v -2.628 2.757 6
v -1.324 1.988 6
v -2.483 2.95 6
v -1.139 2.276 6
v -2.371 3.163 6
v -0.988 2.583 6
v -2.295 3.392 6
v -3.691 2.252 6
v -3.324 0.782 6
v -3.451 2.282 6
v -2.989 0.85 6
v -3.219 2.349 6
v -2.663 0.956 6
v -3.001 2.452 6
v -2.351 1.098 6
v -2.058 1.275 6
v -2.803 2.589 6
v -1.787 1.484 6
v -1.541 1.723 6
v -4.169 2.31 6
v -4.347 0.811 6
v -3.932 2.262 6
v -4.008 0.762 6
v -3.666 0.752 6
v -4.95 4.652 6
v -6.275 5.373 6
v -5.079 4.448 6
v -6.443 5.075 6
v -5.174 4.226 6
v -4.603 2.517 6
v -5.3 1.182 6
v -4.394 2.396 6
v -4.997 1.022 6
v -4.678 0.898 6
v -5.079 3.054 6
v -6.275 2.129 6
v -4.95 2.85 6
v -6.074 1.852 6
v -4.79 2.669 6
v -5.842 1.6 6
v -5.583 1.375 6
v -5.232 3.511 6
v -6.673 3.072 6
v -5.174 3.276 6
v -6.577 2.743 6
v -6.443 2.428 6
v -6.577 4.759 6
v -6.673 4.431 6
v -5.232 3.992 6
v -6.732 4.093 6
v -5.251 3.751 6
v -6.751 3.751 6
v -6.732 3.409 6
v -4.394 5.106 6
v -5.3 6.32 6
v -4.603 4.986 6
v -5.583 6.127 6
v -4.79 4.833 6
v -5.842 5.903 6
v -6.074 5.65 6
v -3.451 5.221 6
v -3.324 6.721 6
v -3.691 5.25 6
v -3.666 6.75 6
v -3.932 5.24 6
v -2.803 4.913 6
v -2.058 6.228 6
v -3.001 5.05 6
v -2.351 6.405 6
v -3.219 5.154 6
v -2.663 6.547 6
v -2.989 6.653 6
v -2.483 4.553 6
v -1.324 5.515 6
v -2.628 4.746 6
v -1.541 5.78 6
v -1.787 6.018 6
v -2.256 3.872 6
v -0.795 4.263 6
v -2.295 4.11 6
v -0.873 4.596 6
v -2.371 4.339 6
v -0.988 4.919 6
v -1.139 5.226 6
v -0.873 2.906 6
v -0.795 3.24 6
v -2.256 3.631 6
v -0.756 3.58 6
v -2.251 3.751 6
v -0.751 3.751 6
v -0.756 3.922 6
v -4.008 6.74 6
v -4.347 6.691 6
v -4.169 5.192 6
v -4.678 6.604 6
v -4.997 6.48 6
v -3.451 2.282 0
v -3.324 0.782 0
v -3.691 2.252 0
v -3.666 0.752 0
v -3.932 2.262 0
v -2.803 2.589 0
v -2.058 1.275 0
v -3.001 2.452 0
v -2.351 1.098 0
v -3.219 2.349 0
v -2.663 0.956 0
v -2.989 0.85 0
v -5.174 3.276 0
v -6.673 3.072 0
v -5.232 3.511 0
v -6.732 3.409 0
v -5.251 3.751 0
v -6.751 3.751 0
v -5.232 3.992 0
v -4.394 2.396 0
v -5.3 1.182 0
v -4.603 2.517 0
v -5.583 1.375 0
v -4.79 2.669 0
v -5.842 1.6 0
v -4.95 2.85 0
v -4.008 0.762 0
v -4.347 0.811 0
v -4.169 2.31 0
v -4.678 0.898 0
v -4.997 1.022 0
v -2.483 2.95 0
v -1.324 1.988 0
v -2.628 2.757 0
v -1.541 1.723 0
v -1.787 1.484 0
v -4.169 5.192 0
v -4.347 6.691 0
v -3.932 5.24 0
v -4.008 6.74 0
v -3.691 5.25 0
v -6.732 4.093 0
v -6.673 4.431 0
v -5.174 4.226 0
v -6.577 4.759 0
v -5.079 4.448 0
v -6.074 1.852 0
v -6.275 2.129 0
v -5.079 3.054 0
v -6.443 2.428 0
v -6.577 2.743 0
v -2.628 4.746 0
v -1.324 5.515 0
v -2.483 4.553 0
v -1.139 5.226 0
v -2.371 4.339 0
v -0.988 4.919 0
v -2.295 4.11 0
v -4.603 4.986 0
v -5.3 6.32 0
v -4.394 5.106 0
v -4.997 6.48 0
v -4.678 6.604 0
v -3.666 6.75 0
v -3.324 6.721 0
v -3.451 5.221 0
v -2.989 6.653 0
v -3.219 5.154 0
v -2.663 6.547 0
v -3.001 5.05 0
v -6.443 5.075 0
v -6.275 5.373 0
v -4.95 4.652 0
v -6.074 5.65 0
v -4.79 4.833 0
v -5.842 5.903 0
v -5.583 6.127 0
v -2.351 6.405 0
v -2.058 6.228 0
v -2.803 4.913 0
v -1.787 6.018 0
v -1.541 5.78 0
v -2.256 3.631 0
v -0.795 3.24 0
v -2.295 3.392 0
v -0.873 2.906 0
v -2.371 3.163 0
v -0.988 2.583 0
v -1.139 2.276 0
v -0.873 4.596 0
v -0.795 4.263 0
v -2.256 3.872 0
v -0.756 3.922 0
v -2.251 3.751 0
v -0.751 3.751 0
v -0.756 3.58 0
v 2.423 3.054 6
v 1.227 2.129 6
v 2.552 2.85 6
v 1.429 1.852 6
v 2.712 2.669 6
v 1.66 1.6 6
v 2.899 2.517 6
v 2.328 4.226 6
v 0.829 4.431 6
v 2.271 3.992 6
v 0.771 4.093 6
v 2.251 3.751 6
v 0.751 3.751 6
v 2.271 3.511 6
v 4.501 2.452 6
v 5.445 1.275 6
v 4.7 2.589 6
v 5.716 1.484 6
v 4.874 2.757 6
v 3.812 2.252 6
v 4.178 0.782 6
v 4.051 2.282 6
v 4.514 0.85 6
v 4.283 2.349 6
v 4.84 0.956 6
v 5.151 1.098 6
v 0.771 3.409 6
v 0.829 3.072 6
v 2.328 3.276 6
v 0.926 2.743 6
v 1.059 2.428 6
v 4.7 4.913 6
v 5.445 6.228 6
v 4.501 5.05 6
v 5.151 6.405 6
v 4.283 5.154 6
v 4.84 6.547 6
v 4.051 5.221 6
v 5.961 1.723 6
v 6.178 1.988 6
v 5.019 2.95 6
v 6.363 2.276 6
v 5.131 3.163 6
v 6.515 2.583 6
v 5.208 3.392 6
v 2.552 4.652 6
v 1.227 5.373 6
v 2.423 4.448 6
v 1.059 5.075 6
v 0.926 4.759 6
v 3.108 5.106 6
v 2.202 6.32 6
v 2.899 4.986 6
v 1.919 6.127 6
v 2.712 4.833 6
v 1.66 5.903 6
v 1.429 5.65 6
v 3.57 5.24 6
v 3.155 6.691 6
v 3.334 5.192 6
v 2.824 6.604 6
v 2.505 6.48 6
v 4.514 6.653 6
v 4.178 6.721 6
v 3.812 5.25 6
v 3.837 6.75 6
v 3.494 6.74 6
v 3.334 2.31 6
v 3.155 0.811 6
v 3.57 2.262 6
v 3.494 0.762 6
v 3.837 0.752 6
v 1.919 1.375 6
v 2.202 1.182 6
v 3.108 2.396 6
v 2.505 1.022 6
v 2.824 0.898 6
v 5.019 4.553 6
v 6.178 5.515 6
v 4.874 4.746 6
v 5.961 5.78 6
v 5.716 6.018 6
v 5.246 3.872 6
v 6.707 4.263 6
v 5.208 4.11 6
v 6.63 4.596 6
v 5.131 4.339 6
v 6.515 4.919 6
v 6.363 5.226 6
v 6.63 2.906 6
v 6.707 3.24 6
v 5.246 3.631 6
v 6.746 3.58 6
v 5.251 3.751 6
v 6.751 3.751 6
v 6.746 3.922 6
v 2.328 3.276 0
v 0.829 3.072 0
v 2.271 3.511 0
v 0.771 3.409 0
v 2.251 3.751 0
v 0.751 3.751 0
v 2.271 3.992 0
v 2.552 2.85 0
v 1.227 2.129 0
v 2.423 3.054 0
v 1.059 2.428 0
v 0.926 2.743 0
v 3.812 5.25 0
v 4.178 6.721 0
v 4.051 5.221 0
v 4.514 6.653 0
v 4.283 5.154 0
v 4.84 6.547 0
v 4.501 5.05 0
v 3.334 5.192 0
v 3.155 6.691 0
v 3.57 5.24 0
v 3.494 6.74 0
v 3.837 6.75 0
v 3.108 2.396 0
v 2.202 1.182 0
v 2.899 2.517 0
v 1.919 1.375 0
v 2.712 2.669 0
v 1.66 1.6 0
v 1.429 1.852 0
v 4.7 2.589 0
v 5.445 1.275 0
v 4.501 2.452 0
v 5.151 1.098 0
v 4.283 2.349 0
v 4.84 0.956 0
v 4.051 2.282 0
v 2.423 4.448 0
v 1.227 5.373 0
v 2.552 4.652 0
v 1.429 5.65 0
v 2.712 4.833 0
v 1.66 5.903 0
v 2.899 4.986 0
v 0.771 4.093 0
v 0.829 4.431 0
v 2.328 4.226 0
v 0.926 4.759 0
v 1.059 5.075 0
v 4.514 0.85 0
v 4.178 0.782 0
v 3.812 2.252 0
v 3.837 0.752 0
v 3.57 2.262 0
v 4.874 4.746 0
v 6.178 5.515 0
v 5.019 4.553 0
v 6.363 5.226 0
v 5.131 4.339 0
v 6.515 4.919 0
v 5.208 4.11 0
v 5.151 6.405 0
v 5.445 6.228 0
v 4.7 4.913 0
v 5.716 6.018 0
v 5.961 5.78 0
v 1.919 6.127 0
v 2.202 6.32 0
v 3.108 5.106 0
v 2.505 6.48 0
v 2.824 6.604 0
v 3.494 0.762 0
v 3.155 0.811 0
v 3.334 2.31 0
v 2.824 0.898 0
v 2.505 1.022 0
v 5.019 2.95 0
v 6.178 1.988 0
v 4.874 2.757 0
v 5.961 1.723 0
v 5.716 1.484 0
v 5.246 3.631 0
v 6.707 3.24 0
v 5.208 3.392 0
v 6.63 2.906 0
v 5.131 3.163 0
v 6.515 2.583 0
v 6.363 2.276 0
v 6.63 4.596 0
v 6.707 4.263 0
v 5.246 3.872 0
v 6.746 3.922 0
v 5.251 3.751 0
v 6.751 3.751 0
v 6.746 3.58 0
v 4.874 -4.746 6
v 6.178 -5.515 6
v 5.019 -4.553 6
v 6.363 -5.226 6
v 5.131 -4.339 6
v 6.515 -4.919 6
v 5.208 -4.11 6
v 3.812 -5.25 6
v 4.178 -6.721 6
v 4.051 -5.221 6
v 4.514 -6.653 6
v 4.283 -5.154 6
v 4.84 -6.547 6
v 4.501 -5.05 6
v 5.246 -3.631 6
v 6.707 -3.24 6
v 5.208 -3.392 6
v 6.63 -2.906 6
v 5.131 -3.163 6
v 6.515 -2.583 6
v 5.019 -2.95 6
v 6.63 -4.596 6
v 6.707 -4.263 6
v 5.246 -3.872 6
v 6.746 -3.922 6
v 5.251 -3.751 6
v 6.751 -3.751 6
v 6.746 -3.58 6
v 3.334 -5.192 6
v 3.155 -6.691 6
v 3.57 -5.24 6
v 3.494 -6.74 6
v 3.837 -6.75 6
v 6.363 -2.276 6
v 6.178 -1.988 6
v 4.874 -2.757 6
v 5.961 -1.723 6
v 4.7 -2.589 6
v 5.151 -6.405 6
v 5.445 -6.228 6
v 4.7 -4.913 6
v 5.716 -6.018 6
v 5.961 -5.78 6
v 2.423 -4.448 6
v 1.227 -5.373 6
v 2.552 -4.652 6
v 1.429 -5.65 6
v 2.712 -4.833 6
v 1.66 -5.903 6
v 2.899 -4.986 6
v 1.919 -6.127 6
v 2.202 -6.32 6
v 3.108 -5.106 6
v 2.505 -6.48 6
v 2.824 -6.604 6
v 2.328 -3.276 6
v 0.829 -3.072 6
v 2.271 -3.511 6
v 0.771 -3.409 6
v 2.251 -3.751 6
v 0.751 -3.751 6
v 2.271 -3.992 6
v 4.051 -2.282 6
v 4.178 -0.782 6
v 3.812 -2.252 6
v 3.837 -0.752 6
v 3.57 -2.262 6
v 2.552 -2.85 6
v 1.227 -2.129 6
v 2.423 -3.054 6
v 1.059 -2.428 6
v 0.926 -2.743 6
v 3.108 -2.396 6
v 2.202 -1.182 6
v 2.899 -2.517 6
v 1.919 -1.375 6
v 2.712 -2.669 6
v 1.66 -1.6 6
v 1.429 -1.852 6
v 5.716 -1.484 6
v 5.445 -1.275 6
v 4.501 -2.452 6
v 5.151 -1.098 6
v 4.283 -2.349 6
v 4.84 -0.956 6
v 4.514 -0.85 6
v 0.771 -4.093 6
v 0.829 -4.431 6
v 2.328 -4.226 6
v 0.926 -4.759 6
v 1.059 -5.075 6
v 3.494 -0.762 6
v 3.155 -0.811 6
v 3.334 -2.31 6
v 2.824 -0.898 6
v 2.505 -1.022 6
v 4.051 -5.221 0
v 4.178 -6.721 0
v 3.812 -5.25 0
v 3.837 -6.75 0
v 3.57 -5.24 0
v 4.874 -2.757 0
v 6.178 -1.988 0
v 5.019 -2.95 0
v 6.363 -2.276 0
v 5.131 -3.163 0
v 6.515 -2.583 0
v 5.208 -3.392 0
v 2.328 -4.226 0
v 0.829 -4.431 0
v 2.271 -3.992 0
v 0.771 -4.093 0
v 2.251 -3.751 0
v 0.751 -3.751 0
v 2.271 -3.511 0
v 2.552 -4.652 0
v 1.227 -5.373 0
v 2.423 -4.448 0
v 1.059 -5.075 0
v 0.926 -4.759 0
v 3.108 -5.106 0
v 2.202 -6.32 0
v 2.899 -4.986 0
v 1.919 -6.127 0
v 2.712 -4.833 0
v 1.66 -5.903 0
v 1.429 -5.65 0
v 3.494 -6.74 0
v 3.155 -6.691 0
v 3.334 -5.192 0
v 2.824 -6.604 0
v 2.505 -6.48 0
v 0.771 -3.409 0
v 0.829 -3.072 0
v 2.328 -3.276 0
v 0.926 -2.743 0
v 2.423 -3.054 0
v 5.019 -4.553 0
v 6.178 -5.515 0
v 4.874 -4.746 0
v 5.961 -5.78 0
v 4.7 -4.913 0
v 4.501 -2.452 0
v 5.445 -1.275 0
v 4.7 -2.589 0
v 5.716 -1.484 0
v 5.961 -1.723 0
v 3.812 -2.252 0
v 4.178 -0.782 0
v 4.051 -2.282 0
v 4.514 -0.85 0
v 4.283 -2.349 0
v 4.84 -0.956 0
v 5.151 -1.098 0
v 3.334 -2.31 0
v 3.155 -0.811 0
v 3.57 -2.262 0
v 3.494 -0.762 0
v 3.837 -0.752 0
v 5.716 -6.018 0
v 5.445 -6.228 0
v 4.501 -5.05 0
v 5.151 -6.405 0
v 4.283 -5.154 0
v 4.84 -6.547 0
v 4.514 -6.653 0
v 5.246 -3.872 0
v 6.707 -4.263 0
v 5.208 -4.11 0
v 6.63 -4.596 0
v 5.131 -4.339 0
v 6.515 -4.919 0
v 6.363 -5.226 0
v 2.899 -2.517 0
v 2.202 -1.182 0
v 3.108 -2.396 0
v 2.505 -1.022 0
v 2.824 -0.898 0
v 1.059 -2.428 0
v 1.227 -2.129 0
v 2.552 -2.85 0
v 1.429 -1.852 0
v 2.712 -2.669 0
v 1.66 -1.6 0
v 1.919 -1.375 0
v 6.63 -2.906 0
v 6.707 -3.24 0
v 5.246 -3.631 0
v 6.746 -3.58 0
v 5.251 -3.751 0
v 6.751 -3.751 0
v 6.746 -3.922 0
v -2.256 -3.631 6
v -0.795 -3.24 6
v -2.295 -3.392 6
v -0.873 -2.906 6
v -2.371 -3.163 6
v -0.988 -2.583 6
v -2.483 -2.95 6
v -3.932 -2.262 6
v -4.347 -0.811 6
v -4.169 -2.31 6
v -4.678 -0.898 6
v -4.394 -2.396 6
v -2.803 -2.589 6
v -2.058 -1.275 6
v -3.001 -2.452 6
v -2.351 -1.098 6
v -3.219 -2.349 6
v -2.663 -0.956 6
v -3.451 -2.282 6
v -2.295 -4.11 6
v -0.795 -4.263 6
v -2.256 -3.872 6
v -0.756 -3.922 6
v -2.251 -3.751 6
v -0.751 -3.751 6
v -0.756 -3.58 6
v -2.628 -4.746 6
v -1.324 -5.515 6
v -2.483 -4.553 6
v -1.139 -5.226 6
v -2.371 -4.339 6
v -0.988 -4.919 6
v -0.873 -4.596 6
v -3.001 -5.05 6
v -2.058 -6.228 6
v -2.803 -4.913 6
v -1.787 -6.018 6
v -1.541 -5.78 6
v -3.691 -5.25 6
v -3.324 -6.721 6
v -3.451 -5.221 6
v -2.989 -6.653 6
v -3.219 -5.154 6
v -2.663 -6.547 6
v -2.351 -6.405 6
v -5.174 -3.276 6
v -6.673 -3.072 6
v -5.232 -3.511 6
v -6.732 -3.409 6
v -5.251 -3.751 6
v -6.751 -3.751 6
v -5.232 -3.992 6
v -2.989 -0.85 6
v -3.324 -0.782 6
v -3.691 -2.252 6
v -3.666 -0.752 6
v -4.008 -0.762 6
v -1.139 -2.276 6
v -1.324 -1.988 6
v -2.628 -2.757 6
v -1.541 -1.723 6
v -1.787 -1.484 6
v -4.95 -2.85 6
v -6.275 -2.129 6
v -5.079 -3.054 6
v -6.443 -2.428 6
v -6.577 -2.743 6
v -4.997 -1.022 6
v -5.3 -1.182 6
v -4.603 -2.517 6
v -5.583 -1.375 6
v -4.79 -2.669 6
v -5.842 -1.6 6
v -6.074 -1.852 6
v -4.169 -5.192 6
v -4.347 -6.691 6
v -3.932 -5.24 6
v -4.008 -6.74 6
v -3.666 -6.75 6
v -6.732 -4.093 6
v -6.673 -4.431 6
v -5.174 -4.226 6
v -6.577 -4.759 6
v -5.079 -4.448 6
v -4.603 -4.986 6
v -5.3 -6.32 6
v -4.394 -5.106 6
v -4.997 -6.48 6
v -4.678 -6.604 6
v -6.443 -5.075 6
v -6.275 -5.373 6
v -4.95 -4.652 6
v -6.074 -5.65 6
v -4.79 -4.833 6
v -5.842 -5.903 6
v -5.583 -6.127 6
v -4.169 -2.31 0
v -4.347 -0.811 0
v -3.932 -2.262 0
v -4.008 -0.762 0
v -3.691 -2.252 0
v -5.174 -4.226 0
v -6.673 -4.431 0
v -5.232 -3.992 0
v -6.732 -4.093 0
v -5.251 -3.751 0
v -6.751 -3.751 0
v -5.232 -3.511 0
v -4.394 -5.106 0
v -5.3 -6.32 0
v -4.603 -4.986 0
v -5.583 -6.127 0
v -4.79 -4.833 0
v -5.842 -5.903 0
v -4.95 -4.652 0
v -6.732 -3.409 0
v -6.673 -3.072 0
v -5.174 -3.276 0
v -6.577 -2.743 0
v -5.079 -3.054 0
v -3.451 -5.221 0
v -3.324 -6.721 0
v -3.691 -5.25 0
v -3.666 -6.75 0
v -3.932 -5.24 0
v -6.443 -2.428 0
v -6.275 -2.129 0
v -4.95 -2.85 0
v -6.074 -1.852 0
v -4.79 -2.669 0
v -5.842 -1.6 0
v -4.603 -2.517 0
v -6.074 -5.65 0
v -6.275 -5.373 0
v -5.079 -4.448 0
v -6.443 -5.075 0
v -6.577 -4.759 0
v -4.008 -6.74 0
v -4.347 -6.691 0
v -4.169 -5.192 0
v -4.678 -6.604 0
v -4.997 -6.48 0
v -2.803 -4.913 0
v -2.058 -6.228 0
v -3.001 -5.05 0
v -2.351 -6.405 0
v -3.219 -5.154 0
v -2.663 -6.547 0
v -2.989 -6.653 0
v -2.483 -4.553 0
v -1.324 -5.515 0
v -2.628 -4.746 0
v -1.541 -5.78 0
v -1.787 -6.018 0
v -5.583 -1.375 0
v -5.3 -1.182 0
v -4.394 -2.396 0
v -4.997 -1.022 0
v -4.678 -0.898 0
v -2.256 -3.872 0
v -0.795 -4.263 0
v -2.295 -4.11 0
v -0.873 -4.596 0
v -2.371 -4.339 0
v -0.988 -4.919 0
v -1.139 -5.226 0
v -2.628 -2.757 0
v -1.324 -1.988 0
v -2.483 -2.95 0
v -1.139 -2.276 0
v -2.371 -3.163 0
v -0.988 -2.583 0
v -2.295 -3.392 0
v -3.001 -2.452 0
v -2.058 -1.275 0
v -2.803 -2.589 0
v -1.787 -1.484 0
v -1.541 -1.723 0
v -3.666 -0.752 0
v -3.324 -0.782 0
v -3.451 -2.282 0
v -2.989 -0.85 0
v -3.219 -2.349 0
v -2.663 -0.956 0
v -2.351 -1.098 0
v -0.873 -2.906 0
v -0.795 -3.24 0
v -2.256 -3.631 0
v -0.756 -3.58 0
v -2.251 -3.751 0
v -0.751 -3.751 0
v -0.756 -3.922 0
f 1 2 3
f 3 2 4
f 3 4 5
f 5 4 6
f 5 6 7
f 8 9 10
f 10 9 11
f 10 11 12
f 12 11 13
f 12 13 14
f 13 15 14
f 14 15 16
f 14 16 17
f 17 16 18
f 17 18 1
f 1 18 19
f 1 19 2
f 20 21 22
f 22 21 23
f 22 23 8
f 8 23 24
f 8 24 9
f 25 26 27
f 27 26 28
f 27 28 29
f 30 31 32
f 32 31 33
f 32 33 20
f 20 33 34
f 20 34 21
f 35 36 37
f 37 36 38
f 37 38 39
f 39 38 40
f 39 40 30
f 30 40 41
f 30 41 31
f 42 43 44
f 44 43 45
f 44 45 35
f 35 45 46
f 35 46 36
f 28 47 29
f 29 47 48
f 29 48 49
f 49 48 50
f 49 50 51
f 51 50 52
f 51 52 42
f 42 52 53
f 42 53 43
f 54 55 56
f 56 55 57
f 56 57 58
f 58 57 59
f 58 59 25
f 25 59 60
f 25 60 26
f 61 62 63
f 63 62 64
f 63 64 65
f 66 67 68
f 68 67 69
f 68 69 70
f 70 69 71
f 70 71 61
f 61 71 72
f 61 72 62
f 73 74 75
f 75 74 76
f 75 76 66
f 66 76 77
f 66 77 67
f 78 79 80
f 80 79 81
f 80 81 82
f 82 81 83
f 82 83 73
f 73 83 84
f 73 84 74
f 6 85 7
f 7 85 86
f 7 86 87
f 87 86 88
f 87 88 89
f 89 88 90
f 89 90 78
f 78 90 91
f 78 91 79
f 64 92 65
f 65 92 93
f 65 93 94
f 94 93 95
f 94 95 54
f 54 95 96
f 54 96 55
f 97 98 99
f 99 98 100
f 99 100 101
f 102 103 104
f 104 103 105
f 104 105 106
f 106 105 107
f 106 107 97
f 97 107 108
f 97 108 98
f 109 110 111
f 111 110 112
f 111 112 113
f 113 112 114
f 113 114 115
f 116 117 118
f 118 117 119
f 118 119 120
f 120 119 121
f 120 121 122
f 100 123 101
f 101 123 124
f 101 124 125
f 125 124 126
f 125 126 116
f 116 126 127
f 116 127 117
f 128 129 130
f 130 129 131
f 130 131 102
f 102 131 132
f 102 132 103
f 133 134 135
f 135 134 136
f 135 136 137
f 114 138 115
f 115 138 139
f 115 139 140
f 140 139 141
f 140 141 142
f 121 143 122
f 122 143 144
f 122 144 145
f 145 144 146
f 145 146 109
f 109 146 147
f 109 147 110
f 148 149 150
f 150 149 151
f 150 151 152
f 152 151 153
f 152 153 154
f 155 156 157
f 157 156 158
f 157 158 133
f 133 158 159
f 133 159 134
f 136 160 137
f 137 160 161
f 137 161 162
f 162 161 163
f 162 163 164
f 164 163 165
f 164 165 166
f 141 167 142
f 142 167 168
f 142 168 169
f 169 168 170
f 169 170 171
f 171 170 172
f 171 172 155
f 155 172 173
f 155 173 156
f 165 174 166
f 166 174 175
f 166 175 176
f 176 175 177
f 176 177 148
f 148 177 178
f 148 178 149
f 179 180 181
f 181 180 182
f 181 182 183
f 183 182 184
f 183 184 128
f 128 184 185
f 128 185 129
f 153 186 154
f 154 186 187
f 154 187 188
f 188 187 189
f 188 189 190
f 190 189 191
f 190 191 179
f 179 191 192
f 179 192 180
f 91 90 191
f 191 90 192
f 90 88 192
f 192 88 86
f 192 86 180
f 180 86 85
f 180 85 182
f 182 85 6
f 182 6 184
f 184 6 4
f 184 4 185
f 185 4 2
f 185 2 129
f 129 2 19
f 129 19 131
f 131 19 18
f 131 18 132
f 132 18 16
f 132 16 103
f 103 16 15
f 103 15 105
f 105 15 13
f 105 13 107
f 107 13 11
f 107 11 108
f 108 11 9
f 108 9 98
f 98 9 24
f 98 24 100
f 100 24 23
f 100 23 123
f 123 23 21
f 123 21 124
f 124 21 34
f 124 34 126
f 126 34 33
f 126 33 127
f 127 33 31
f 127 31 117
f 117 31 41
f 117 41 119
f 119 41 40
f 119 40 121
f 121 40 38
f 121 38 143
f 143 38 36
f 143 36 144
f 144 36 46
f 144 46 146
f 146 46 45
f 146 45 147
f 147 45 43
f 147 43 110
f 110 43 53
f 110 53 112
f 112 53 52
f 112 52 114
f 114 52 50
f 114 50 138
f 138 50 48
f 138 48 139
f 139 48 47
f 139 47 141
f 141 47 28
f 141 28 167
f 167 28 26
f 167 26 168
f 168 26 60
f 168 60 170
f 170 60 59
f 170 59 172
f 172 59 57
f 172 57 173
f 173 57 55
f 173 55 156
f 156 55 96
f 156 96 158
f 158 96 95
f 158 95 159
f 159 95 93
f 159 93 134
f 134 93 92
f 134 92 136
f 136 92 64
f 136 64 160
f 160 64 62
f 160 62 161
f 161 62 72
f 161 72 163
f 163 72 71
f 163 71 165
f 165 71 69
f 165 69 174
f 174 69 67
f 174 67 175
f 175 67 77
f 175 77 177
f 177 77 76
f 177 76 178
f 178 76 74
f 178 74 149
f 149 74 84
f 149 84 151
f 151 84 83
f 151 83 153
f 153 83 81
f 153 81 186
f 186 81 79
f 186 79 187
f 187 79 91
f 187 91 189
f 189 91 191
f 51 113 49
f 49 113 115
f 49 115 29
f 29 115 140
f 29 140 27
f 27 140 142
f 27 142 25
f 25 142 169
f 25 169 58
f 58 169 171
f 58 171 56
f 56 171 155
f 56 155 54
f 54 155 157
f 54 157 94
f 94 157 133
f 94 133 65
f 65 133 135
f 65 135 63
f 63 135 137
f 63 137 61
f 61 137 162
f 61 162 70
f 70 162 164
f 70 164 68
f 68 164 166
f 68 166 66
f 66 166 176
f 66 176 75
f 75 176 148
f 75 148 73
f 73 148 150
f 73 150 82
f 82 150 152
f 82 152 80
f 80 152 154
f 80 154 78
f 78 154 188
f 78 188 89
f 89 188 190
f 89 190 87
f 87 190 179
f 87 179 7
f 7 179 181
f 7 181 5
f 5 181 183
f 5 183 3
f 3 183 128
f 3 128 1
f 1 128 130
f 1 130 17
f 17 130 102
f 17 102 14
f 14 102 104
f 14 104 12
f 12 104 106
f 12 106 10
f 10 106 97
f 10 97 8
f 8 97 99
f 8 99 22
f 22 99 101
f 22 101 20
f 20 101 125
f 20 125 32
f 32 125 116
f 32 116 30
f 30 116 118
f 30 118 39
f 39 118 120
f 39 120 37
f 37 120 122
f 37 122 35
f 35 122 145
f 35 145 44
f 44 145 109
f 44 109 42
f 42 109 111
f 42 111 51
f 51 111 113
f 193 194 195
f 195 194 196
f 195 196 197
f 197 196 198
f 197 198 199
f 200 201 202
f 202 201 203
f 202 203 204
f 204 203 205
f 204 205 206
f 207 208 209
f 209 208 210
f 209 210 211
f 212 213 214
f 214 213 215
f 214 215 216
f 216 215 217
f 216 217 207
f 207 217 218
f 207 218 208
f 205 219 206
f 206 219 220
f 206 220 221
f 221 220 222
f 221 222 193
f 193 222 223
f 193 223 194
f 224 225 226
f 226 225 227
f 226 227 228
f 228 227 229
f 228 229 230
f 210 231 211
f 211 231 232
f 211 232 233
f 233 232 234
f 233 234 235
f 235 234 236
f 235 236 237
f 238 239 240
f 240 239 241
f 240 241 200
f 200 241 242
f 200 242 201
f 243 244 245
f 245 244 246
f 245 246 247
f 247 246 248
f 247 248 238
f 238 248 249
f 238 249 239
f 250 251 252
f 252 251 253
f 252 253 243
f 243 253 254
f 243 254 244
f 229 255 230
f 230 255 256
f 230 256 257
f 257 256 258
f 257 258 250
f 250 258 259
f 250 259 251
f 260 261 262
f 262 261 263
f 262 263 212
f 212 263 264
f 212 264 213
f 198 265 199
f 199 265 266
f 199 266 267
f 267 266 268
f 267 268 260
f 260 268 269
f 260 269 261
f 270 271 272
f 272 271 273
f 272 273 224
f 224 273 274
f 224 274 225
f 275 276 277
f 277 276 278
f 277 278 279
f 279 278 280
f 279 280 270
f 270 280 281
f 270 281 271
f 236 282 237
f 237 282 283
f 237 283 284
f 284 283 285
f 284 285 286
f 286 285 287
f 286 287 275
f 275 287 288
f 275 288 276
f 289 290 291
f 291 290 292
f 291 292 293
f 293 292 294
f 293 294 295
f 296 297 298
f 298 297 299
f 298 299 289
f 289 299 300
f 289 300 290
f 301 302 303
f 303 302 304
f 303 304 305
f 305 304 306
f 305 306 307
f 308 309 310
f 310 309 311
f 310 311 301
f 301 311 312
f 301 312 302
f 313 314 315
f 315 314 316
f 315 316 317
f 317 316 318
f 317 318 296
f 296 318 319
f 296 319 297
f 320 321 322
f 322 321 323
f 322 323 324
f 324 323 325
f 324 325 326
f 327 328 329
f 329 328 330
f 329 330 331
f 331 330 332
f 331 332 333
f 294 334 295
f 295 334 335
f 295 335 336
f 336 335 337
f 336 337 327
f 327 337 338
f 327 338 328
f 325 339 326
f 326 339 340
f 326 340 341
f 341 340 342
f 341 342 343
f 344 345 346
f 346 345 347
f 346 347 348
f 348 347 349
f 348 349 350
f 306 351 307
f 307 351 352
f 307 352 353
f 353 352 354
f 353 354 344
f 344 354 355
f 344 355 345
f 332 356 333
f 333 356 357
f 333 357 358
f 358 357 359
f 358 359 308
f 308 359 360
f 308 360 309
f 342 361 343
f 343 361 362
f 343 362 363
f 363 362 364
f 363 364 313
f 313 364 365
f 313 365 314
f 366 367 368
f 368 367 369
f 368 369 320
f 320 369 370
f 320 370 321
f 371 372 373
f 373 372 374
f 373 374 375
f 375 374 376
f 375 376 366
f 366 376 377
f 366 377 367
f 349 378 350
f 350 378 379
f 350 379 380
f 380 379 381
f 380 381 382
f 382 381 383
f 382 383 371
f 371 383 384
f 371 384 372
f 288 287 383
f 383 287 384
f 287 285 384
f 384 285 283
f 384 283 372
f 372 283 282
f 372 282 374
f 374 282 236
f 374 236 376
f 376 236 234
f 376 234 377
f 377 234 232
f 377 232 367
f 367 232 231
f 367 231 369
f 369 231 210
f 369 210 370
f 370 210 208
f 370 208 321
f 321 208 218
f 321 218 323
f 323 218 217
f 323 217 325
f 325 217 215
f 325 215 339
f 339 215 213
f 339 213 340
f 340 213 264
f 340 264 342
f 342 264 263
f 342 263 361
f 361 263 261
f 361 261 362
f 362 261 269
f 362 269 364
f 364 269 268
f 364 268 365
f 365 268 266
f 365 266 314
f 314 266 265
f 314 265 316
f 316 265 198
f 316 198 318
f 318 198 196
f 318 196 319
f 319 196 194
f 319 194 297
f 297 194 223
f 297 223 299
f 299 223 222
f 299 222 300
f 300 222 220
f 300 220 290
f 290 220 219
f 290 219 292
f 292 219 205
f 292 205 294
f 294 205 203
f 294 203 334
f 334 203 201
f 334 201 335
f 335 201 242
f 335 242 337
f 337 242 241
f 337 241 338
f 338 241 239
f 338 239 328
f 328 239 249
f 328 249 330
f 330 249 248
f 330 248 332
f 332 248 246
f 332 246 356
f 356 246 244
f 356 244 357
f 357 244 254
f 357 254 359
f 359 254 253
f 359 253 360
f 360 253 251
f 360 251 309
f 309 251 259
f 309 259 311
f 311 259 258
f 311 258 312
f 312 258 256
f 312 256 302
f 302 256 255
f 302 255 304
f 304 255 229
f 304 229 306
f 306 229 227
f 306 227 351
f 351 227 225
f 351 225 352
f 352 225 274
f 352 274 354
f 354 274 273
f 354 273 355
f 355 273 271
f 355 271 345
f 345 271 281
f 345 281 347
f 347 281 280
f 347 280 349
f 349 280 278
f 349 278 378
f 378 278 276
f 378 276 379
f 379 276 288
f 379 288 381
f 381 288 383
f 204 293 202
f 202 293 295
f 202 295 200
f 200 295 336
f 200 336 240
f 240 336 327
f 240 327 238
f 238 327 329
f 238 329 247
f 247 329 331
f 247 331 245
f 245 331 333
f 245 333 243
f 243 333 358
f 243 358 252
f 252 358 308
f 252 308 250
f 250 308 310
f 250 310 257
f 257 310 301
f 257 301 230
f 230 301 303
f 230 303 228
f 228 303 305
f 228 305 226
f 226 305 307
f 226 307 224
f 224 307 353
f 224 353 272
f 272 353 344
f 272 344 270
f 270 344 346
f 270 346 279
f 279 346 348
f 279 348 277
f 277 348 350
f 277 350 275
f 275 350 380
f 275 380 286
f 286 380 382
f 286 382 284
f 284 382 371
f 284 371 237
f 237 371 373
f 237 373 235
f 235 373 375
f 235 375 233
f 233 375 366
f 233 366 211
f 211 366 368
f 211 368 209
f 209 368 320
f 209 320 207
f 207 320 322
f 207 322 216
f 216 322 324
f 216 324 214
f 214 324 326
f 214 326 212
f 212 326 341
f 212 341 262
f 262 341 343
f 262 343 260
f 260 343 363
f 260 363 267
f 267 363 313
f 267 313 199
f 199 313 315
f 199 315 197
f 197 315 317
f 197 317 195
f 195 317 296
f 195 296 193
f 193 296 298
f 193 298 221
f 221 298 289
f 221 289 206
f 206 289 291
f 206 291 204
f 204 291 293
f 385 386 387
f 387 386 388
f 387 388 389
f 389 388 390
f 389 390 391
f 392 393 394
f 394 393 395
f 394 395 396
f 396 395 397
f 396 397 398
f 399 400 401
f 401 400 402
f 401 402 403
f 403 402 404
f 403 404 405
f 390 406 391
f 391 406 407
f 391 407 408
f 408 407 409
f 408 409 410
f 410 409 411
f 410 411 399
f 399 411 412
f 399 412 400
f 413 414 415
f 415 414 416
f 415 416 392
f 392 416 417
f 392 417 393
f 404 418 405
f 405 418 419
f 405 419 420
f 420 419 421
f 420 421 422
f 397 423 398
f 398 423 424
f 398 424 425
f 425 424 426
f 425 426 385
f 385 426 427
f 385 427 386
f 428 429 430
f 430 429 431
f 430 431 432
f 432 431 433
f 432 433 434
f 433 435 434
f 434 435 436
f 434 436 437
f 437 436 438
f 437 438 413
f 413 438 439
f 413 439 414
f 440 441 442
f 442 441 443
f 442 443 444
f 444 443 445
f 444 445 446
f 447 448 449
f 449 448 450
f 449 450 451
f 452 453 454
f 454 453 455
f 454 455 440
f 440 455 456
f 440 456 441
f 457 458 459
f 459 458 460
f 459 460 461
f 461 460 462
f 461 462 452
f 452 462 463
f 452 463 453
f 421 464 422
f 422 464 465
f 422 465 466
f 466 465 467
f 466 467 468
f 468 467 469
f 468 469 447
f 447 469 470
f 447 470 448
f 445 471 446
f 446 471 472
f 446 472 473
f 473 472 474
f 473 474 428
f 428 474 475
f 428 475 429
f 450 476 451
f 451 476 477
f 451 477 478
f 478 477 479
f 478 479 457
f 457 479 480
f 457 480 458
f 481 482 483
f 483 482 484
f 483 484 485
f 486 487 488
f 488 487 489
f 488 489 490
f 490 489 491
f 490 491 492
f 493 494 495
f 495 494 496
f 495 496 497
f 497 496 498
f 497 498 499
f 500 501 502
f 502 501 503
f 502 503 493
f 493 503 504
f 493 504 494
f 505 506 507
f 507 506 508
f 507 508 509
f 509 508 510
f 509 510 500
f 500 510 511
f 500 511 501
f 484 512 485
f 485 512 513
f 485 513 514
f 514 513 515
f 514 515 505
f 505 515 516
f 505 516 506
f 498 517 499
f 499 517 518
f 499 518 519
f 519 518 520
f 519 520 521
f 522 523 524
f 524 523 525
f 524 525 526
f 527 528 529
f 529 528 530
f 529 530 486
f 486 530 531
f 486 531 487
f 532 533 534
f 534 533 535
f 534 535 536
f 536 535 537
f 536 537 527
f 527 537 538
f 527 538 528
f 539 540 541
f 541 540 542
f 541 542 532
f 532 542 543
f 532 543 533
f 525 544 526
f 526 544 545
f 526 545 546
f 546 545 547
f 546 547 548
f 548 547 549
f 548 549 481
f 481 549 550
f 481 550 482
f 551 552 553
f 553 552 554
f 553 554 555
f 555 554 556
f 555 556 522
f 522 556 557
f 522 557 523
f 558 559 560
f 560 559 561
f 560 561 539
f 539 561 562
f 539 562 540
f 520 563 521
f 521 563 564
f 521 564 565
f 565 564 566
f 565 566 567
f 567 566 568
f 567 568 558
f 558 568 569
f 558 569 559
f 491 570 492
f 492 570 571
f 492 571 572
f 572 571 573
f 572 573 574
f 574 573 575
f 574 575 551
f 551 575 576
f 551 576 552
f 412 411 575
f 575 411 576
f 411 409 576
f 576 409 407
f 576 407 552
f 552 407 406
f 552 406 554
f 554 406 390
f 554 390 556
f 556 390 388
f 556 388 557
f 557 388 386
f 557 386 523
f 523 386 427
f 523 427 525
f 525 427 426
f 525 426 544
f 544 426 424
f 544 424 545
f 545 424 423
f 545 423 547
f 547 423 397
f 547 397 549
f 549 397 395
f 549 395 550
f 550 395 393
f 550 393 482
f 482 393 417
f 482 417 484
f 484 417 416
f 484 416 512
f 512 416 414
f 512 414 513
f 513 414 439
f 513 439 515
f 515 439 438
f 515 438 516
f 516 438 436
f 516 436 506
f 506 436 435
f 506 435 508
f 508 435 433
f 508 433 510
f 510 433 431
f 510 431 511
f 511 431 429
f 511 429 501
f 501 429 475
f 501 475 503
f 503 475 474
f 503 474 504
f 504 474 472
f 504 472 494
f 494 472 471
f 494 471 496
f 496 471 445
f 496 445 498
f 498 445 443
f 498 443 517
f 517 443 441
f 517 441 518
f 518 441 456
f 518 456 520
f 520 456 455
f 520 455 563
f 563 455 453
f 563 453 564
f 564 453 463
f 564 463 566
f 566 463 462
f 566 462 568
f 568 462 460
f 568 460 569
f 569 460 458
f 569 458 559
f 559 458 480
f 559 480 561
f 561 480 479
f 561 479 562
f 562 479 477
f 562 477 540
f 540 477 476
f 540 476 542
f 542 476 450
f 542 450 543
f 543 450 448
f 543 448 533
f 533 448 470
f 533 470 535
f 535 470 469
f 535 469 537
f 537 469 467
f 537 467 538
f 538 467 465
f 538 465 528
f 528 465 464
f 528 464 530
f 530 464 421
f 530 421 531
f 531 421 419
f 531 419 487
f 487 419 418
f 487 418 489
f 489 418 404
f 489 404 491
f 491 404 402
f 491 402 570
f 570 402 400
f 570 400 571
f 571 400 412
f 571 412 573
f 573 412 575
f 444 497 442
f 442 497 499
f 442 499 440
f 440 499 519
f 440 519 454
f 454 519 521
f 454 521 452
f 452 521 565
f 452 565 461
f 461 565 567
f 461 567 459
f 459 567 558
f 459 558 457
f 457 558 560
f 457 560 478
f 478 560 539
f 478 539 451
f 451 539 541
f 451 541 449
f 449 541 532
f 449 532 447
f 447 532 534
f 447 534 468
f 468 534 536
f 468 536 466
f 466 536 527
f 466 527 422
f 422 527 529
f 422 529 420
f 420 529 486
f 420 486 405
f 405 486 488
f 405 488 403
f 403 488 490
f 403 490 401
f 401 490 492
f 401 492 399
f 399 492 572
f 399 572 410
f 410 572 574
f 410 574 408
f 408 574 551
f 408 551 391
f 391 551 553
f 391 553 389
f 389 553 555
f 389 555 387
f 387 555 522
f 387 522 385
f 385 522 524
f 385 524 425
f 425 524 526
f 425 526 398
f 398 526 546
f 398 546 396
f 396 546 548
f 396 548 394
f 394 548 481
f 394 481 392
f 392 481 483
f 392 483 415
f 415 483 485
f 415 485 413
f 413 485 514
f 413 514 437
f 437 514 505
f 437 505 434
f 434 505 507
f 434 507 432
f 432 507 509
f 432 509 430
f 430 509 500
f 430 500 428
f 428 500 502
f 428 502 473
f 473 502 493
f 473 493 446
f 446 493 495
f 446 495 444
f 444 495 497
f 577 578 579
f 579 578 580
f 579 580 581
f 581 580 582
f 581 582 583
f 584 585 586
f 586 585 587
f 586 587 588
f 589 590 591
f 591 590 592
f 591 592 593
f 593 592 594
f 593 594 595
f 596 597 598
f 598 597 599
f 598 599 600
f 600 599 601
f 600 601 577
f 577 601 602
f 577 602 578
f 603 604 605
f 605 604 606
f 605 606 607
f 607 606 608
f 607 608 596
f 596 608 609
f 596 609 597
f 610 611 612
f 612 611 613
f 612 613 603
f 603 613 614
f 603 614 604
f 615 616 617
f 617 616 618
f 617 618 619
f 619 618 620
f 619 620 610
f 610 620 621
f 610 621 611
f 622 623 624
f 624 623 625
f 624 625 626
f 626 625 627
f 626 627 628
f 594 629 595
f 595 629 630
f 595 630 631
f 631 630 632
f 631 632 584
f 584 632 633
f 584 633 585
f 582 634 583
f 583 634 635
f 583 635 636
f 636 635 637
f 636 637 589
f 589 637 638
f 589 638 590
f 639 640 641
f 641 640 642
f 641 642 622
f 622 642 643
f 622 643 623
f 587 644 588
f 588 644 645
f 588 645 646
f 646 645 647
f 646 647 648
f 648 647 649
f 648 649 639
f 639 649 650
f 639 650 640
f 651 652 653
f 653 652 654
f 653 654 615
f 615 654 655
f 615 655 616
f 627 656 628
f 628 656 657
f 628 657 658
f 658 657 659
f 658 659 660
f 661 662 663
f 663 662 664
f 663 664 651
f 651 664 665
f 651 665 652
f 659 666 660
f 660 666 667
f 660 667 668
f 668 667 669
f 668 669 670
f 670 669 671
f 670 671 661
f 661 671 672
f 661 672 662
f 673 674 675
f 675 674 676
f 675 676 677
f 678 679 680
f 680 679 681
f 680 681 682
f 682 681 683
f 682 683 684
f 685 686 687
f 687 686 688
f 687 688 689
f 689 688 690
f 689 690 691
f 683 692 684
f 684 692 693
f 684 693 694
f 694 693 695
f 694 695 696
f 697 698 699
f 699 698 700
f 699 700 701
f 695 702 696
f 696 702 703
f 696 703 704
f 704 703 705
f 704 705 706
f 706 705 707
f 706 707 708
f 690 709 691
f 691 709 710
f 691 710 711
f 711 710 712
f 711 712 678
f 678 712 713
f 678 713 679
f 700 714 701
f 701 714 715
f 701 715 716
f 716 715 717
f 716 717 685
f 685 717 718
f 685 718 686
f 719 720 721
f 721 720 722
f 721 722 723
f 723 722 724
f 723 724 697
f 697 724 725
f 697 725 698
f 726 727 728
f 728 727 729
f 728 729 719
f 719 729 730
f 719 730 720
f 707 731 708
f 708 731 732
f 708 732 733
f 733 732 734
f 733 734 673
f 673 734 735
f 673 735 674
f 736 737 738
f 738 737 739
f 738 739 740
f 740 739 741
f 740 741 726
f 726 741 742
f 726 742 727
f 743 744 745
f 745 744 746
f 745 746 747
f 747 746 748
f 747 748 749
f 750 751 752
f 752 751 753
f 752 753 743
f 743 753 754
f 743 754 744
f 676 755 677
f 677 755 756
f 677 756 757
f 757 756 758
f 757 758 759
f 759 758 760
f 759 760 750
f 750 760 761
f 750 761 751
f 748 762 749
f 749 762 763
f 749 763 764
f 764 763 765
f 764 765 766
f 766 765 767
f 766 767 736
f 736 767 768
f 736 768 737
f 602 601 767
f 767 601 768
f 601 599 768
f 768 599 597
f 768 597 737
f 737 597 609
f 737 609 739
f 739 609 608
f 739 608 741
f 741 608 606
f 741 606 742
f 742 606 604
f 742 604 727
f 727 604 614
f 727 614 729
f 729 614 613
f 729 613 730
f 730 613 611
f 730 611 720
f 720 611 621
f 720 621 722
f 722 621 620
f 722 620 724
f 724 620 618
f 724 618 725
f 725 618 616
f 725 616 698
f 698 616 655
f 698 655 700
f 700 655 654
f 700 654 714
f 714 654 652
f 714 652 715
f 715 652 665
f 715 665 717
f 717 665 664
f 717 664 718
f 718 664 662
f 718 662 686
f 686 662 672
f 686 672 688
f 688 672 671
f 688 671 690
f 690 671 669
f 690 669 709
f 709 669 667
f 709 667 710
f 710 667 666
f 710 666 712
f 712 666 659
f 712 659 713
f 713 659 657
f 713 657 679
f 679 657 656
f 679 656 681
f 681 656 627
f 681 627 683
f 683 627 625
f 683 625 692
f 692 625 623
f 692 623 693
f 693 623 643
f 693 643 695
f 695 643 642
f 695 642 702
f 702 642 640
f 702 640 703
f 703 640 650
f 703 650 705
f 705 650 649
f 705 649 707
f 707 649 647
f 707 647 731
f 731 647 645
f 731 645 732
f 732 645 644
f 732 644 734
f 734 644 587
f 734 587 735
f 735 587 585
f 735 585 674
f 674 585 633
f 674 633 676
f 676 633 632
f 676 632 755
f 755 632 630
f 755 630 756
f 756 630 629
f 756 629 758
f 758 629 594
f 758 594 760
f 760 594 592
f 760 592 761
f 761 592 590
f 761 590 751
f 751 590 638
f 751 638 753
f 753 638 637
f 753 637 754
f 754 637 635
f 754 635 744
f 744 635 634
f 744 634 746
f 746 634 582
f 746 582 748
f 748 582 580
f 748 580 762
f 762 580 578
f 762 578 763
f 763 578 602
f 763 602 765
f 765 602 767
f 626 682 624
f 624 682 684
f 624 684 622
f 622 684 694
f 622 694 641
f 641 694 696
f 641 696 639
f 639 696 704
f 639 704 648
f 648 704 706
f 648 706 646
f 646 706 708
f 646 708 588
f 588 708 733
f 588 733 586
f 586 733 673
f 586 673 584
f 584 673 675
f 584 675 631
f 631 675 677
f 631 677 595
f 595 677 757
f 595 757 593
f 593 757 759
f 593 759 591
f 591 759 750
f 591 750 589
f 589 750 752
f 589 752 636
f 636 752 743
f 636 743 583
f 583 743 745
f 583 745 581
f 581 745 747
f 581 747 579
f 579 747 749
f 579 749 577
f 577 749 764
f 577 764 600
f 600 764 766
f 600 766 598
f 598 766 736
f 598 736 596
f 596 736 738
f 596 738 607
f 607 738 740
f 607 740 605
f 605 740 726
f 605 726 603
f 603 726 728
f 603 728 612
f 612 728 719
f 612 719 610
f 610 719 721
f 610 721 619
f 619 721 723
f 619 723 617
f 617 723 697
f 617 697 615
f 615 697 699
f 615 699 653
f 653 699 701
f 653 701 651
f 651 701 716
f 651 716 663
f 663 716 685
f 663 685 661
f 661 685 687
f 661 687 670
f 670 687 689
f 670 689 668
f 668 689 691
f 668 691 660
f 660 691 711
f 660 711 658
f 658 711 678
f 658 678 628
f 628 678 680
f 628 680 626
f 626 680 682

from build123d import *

# Parameters (mm, degrees)
SKETCH2_R             = 3
SKETCH2_R_2           = 1.5
BOSS_EXTRUDE1_DEPTH   = 6
BOSS_EXTRUDE1_2_DEPTH = 6
BOSS_EXTRUDE1_3_DEPTH = 6
BOSS_EXTRUDE1_4_DEPTH = 6


with BuildPart() as part:
    # Sketch2 → Boss-Extrude1 (new body)
    with BuildSketch(Plane.XY):
        with Locations((-3.751201474, 3.751201474)):
            Circle(SKETCH2_R)
        with Locations((-3.751201474, 3.751201474)):
            Circle(SKETCH2_R_2, mode=Mode.SUBTRACT)
    extrude(amount=BOSS_EXTRUDE1_DEPTH)


with BuildPart() as body_2:
    # Sketch2 → Boss-Extrude1 2 (new body)
    with BuildSketch(Plane.XY):
        with Locations((3.751201474, 3.751201474)):
            Circle(SKETCH2_R)
        with Locations((3.751201474, 3.751201474)):
            Circle(SKETCH2_R_2, mode=Mode.SUBTRACT)
    extrude(amount=BOSS_EXTRUDE1_2_DEPTH)


with BuildPart() as body_3:
    # Sketch2 → Boss-Extrude1 3 (new body)
    with BuildSketch(Plane.XY):
        with Locations((3.751201474, -3.751201474)):
            Circle(SKETCH2_R)
        with Locations((3.751201474, -3.751201474)):
            Circle(SKETCH2_R_2, mode=Mode.SUBTRACT)
    extrude(amount=BOSS_EXTRUDE1_3_DEPTH)


with BuildPart() as body_4:
    # Sketch2 → Boss-Extrude1 4 (new body)
    with BuildSketch(Plane.XY):
        with Locations((-3.751201474, -3.751201474)):
            Circle(SKETCH2_R)
        with Locations((-3.751201474, -3.751201474)):
            Circle(SKETCH2_R_2, mode=Mode.SUBTRACT)
    extrude(amount=BOSS_EXTRUDE1_4_DEPTH)


solid = Compound([part.part, body_2.part, body_3.part, body_4.part])
